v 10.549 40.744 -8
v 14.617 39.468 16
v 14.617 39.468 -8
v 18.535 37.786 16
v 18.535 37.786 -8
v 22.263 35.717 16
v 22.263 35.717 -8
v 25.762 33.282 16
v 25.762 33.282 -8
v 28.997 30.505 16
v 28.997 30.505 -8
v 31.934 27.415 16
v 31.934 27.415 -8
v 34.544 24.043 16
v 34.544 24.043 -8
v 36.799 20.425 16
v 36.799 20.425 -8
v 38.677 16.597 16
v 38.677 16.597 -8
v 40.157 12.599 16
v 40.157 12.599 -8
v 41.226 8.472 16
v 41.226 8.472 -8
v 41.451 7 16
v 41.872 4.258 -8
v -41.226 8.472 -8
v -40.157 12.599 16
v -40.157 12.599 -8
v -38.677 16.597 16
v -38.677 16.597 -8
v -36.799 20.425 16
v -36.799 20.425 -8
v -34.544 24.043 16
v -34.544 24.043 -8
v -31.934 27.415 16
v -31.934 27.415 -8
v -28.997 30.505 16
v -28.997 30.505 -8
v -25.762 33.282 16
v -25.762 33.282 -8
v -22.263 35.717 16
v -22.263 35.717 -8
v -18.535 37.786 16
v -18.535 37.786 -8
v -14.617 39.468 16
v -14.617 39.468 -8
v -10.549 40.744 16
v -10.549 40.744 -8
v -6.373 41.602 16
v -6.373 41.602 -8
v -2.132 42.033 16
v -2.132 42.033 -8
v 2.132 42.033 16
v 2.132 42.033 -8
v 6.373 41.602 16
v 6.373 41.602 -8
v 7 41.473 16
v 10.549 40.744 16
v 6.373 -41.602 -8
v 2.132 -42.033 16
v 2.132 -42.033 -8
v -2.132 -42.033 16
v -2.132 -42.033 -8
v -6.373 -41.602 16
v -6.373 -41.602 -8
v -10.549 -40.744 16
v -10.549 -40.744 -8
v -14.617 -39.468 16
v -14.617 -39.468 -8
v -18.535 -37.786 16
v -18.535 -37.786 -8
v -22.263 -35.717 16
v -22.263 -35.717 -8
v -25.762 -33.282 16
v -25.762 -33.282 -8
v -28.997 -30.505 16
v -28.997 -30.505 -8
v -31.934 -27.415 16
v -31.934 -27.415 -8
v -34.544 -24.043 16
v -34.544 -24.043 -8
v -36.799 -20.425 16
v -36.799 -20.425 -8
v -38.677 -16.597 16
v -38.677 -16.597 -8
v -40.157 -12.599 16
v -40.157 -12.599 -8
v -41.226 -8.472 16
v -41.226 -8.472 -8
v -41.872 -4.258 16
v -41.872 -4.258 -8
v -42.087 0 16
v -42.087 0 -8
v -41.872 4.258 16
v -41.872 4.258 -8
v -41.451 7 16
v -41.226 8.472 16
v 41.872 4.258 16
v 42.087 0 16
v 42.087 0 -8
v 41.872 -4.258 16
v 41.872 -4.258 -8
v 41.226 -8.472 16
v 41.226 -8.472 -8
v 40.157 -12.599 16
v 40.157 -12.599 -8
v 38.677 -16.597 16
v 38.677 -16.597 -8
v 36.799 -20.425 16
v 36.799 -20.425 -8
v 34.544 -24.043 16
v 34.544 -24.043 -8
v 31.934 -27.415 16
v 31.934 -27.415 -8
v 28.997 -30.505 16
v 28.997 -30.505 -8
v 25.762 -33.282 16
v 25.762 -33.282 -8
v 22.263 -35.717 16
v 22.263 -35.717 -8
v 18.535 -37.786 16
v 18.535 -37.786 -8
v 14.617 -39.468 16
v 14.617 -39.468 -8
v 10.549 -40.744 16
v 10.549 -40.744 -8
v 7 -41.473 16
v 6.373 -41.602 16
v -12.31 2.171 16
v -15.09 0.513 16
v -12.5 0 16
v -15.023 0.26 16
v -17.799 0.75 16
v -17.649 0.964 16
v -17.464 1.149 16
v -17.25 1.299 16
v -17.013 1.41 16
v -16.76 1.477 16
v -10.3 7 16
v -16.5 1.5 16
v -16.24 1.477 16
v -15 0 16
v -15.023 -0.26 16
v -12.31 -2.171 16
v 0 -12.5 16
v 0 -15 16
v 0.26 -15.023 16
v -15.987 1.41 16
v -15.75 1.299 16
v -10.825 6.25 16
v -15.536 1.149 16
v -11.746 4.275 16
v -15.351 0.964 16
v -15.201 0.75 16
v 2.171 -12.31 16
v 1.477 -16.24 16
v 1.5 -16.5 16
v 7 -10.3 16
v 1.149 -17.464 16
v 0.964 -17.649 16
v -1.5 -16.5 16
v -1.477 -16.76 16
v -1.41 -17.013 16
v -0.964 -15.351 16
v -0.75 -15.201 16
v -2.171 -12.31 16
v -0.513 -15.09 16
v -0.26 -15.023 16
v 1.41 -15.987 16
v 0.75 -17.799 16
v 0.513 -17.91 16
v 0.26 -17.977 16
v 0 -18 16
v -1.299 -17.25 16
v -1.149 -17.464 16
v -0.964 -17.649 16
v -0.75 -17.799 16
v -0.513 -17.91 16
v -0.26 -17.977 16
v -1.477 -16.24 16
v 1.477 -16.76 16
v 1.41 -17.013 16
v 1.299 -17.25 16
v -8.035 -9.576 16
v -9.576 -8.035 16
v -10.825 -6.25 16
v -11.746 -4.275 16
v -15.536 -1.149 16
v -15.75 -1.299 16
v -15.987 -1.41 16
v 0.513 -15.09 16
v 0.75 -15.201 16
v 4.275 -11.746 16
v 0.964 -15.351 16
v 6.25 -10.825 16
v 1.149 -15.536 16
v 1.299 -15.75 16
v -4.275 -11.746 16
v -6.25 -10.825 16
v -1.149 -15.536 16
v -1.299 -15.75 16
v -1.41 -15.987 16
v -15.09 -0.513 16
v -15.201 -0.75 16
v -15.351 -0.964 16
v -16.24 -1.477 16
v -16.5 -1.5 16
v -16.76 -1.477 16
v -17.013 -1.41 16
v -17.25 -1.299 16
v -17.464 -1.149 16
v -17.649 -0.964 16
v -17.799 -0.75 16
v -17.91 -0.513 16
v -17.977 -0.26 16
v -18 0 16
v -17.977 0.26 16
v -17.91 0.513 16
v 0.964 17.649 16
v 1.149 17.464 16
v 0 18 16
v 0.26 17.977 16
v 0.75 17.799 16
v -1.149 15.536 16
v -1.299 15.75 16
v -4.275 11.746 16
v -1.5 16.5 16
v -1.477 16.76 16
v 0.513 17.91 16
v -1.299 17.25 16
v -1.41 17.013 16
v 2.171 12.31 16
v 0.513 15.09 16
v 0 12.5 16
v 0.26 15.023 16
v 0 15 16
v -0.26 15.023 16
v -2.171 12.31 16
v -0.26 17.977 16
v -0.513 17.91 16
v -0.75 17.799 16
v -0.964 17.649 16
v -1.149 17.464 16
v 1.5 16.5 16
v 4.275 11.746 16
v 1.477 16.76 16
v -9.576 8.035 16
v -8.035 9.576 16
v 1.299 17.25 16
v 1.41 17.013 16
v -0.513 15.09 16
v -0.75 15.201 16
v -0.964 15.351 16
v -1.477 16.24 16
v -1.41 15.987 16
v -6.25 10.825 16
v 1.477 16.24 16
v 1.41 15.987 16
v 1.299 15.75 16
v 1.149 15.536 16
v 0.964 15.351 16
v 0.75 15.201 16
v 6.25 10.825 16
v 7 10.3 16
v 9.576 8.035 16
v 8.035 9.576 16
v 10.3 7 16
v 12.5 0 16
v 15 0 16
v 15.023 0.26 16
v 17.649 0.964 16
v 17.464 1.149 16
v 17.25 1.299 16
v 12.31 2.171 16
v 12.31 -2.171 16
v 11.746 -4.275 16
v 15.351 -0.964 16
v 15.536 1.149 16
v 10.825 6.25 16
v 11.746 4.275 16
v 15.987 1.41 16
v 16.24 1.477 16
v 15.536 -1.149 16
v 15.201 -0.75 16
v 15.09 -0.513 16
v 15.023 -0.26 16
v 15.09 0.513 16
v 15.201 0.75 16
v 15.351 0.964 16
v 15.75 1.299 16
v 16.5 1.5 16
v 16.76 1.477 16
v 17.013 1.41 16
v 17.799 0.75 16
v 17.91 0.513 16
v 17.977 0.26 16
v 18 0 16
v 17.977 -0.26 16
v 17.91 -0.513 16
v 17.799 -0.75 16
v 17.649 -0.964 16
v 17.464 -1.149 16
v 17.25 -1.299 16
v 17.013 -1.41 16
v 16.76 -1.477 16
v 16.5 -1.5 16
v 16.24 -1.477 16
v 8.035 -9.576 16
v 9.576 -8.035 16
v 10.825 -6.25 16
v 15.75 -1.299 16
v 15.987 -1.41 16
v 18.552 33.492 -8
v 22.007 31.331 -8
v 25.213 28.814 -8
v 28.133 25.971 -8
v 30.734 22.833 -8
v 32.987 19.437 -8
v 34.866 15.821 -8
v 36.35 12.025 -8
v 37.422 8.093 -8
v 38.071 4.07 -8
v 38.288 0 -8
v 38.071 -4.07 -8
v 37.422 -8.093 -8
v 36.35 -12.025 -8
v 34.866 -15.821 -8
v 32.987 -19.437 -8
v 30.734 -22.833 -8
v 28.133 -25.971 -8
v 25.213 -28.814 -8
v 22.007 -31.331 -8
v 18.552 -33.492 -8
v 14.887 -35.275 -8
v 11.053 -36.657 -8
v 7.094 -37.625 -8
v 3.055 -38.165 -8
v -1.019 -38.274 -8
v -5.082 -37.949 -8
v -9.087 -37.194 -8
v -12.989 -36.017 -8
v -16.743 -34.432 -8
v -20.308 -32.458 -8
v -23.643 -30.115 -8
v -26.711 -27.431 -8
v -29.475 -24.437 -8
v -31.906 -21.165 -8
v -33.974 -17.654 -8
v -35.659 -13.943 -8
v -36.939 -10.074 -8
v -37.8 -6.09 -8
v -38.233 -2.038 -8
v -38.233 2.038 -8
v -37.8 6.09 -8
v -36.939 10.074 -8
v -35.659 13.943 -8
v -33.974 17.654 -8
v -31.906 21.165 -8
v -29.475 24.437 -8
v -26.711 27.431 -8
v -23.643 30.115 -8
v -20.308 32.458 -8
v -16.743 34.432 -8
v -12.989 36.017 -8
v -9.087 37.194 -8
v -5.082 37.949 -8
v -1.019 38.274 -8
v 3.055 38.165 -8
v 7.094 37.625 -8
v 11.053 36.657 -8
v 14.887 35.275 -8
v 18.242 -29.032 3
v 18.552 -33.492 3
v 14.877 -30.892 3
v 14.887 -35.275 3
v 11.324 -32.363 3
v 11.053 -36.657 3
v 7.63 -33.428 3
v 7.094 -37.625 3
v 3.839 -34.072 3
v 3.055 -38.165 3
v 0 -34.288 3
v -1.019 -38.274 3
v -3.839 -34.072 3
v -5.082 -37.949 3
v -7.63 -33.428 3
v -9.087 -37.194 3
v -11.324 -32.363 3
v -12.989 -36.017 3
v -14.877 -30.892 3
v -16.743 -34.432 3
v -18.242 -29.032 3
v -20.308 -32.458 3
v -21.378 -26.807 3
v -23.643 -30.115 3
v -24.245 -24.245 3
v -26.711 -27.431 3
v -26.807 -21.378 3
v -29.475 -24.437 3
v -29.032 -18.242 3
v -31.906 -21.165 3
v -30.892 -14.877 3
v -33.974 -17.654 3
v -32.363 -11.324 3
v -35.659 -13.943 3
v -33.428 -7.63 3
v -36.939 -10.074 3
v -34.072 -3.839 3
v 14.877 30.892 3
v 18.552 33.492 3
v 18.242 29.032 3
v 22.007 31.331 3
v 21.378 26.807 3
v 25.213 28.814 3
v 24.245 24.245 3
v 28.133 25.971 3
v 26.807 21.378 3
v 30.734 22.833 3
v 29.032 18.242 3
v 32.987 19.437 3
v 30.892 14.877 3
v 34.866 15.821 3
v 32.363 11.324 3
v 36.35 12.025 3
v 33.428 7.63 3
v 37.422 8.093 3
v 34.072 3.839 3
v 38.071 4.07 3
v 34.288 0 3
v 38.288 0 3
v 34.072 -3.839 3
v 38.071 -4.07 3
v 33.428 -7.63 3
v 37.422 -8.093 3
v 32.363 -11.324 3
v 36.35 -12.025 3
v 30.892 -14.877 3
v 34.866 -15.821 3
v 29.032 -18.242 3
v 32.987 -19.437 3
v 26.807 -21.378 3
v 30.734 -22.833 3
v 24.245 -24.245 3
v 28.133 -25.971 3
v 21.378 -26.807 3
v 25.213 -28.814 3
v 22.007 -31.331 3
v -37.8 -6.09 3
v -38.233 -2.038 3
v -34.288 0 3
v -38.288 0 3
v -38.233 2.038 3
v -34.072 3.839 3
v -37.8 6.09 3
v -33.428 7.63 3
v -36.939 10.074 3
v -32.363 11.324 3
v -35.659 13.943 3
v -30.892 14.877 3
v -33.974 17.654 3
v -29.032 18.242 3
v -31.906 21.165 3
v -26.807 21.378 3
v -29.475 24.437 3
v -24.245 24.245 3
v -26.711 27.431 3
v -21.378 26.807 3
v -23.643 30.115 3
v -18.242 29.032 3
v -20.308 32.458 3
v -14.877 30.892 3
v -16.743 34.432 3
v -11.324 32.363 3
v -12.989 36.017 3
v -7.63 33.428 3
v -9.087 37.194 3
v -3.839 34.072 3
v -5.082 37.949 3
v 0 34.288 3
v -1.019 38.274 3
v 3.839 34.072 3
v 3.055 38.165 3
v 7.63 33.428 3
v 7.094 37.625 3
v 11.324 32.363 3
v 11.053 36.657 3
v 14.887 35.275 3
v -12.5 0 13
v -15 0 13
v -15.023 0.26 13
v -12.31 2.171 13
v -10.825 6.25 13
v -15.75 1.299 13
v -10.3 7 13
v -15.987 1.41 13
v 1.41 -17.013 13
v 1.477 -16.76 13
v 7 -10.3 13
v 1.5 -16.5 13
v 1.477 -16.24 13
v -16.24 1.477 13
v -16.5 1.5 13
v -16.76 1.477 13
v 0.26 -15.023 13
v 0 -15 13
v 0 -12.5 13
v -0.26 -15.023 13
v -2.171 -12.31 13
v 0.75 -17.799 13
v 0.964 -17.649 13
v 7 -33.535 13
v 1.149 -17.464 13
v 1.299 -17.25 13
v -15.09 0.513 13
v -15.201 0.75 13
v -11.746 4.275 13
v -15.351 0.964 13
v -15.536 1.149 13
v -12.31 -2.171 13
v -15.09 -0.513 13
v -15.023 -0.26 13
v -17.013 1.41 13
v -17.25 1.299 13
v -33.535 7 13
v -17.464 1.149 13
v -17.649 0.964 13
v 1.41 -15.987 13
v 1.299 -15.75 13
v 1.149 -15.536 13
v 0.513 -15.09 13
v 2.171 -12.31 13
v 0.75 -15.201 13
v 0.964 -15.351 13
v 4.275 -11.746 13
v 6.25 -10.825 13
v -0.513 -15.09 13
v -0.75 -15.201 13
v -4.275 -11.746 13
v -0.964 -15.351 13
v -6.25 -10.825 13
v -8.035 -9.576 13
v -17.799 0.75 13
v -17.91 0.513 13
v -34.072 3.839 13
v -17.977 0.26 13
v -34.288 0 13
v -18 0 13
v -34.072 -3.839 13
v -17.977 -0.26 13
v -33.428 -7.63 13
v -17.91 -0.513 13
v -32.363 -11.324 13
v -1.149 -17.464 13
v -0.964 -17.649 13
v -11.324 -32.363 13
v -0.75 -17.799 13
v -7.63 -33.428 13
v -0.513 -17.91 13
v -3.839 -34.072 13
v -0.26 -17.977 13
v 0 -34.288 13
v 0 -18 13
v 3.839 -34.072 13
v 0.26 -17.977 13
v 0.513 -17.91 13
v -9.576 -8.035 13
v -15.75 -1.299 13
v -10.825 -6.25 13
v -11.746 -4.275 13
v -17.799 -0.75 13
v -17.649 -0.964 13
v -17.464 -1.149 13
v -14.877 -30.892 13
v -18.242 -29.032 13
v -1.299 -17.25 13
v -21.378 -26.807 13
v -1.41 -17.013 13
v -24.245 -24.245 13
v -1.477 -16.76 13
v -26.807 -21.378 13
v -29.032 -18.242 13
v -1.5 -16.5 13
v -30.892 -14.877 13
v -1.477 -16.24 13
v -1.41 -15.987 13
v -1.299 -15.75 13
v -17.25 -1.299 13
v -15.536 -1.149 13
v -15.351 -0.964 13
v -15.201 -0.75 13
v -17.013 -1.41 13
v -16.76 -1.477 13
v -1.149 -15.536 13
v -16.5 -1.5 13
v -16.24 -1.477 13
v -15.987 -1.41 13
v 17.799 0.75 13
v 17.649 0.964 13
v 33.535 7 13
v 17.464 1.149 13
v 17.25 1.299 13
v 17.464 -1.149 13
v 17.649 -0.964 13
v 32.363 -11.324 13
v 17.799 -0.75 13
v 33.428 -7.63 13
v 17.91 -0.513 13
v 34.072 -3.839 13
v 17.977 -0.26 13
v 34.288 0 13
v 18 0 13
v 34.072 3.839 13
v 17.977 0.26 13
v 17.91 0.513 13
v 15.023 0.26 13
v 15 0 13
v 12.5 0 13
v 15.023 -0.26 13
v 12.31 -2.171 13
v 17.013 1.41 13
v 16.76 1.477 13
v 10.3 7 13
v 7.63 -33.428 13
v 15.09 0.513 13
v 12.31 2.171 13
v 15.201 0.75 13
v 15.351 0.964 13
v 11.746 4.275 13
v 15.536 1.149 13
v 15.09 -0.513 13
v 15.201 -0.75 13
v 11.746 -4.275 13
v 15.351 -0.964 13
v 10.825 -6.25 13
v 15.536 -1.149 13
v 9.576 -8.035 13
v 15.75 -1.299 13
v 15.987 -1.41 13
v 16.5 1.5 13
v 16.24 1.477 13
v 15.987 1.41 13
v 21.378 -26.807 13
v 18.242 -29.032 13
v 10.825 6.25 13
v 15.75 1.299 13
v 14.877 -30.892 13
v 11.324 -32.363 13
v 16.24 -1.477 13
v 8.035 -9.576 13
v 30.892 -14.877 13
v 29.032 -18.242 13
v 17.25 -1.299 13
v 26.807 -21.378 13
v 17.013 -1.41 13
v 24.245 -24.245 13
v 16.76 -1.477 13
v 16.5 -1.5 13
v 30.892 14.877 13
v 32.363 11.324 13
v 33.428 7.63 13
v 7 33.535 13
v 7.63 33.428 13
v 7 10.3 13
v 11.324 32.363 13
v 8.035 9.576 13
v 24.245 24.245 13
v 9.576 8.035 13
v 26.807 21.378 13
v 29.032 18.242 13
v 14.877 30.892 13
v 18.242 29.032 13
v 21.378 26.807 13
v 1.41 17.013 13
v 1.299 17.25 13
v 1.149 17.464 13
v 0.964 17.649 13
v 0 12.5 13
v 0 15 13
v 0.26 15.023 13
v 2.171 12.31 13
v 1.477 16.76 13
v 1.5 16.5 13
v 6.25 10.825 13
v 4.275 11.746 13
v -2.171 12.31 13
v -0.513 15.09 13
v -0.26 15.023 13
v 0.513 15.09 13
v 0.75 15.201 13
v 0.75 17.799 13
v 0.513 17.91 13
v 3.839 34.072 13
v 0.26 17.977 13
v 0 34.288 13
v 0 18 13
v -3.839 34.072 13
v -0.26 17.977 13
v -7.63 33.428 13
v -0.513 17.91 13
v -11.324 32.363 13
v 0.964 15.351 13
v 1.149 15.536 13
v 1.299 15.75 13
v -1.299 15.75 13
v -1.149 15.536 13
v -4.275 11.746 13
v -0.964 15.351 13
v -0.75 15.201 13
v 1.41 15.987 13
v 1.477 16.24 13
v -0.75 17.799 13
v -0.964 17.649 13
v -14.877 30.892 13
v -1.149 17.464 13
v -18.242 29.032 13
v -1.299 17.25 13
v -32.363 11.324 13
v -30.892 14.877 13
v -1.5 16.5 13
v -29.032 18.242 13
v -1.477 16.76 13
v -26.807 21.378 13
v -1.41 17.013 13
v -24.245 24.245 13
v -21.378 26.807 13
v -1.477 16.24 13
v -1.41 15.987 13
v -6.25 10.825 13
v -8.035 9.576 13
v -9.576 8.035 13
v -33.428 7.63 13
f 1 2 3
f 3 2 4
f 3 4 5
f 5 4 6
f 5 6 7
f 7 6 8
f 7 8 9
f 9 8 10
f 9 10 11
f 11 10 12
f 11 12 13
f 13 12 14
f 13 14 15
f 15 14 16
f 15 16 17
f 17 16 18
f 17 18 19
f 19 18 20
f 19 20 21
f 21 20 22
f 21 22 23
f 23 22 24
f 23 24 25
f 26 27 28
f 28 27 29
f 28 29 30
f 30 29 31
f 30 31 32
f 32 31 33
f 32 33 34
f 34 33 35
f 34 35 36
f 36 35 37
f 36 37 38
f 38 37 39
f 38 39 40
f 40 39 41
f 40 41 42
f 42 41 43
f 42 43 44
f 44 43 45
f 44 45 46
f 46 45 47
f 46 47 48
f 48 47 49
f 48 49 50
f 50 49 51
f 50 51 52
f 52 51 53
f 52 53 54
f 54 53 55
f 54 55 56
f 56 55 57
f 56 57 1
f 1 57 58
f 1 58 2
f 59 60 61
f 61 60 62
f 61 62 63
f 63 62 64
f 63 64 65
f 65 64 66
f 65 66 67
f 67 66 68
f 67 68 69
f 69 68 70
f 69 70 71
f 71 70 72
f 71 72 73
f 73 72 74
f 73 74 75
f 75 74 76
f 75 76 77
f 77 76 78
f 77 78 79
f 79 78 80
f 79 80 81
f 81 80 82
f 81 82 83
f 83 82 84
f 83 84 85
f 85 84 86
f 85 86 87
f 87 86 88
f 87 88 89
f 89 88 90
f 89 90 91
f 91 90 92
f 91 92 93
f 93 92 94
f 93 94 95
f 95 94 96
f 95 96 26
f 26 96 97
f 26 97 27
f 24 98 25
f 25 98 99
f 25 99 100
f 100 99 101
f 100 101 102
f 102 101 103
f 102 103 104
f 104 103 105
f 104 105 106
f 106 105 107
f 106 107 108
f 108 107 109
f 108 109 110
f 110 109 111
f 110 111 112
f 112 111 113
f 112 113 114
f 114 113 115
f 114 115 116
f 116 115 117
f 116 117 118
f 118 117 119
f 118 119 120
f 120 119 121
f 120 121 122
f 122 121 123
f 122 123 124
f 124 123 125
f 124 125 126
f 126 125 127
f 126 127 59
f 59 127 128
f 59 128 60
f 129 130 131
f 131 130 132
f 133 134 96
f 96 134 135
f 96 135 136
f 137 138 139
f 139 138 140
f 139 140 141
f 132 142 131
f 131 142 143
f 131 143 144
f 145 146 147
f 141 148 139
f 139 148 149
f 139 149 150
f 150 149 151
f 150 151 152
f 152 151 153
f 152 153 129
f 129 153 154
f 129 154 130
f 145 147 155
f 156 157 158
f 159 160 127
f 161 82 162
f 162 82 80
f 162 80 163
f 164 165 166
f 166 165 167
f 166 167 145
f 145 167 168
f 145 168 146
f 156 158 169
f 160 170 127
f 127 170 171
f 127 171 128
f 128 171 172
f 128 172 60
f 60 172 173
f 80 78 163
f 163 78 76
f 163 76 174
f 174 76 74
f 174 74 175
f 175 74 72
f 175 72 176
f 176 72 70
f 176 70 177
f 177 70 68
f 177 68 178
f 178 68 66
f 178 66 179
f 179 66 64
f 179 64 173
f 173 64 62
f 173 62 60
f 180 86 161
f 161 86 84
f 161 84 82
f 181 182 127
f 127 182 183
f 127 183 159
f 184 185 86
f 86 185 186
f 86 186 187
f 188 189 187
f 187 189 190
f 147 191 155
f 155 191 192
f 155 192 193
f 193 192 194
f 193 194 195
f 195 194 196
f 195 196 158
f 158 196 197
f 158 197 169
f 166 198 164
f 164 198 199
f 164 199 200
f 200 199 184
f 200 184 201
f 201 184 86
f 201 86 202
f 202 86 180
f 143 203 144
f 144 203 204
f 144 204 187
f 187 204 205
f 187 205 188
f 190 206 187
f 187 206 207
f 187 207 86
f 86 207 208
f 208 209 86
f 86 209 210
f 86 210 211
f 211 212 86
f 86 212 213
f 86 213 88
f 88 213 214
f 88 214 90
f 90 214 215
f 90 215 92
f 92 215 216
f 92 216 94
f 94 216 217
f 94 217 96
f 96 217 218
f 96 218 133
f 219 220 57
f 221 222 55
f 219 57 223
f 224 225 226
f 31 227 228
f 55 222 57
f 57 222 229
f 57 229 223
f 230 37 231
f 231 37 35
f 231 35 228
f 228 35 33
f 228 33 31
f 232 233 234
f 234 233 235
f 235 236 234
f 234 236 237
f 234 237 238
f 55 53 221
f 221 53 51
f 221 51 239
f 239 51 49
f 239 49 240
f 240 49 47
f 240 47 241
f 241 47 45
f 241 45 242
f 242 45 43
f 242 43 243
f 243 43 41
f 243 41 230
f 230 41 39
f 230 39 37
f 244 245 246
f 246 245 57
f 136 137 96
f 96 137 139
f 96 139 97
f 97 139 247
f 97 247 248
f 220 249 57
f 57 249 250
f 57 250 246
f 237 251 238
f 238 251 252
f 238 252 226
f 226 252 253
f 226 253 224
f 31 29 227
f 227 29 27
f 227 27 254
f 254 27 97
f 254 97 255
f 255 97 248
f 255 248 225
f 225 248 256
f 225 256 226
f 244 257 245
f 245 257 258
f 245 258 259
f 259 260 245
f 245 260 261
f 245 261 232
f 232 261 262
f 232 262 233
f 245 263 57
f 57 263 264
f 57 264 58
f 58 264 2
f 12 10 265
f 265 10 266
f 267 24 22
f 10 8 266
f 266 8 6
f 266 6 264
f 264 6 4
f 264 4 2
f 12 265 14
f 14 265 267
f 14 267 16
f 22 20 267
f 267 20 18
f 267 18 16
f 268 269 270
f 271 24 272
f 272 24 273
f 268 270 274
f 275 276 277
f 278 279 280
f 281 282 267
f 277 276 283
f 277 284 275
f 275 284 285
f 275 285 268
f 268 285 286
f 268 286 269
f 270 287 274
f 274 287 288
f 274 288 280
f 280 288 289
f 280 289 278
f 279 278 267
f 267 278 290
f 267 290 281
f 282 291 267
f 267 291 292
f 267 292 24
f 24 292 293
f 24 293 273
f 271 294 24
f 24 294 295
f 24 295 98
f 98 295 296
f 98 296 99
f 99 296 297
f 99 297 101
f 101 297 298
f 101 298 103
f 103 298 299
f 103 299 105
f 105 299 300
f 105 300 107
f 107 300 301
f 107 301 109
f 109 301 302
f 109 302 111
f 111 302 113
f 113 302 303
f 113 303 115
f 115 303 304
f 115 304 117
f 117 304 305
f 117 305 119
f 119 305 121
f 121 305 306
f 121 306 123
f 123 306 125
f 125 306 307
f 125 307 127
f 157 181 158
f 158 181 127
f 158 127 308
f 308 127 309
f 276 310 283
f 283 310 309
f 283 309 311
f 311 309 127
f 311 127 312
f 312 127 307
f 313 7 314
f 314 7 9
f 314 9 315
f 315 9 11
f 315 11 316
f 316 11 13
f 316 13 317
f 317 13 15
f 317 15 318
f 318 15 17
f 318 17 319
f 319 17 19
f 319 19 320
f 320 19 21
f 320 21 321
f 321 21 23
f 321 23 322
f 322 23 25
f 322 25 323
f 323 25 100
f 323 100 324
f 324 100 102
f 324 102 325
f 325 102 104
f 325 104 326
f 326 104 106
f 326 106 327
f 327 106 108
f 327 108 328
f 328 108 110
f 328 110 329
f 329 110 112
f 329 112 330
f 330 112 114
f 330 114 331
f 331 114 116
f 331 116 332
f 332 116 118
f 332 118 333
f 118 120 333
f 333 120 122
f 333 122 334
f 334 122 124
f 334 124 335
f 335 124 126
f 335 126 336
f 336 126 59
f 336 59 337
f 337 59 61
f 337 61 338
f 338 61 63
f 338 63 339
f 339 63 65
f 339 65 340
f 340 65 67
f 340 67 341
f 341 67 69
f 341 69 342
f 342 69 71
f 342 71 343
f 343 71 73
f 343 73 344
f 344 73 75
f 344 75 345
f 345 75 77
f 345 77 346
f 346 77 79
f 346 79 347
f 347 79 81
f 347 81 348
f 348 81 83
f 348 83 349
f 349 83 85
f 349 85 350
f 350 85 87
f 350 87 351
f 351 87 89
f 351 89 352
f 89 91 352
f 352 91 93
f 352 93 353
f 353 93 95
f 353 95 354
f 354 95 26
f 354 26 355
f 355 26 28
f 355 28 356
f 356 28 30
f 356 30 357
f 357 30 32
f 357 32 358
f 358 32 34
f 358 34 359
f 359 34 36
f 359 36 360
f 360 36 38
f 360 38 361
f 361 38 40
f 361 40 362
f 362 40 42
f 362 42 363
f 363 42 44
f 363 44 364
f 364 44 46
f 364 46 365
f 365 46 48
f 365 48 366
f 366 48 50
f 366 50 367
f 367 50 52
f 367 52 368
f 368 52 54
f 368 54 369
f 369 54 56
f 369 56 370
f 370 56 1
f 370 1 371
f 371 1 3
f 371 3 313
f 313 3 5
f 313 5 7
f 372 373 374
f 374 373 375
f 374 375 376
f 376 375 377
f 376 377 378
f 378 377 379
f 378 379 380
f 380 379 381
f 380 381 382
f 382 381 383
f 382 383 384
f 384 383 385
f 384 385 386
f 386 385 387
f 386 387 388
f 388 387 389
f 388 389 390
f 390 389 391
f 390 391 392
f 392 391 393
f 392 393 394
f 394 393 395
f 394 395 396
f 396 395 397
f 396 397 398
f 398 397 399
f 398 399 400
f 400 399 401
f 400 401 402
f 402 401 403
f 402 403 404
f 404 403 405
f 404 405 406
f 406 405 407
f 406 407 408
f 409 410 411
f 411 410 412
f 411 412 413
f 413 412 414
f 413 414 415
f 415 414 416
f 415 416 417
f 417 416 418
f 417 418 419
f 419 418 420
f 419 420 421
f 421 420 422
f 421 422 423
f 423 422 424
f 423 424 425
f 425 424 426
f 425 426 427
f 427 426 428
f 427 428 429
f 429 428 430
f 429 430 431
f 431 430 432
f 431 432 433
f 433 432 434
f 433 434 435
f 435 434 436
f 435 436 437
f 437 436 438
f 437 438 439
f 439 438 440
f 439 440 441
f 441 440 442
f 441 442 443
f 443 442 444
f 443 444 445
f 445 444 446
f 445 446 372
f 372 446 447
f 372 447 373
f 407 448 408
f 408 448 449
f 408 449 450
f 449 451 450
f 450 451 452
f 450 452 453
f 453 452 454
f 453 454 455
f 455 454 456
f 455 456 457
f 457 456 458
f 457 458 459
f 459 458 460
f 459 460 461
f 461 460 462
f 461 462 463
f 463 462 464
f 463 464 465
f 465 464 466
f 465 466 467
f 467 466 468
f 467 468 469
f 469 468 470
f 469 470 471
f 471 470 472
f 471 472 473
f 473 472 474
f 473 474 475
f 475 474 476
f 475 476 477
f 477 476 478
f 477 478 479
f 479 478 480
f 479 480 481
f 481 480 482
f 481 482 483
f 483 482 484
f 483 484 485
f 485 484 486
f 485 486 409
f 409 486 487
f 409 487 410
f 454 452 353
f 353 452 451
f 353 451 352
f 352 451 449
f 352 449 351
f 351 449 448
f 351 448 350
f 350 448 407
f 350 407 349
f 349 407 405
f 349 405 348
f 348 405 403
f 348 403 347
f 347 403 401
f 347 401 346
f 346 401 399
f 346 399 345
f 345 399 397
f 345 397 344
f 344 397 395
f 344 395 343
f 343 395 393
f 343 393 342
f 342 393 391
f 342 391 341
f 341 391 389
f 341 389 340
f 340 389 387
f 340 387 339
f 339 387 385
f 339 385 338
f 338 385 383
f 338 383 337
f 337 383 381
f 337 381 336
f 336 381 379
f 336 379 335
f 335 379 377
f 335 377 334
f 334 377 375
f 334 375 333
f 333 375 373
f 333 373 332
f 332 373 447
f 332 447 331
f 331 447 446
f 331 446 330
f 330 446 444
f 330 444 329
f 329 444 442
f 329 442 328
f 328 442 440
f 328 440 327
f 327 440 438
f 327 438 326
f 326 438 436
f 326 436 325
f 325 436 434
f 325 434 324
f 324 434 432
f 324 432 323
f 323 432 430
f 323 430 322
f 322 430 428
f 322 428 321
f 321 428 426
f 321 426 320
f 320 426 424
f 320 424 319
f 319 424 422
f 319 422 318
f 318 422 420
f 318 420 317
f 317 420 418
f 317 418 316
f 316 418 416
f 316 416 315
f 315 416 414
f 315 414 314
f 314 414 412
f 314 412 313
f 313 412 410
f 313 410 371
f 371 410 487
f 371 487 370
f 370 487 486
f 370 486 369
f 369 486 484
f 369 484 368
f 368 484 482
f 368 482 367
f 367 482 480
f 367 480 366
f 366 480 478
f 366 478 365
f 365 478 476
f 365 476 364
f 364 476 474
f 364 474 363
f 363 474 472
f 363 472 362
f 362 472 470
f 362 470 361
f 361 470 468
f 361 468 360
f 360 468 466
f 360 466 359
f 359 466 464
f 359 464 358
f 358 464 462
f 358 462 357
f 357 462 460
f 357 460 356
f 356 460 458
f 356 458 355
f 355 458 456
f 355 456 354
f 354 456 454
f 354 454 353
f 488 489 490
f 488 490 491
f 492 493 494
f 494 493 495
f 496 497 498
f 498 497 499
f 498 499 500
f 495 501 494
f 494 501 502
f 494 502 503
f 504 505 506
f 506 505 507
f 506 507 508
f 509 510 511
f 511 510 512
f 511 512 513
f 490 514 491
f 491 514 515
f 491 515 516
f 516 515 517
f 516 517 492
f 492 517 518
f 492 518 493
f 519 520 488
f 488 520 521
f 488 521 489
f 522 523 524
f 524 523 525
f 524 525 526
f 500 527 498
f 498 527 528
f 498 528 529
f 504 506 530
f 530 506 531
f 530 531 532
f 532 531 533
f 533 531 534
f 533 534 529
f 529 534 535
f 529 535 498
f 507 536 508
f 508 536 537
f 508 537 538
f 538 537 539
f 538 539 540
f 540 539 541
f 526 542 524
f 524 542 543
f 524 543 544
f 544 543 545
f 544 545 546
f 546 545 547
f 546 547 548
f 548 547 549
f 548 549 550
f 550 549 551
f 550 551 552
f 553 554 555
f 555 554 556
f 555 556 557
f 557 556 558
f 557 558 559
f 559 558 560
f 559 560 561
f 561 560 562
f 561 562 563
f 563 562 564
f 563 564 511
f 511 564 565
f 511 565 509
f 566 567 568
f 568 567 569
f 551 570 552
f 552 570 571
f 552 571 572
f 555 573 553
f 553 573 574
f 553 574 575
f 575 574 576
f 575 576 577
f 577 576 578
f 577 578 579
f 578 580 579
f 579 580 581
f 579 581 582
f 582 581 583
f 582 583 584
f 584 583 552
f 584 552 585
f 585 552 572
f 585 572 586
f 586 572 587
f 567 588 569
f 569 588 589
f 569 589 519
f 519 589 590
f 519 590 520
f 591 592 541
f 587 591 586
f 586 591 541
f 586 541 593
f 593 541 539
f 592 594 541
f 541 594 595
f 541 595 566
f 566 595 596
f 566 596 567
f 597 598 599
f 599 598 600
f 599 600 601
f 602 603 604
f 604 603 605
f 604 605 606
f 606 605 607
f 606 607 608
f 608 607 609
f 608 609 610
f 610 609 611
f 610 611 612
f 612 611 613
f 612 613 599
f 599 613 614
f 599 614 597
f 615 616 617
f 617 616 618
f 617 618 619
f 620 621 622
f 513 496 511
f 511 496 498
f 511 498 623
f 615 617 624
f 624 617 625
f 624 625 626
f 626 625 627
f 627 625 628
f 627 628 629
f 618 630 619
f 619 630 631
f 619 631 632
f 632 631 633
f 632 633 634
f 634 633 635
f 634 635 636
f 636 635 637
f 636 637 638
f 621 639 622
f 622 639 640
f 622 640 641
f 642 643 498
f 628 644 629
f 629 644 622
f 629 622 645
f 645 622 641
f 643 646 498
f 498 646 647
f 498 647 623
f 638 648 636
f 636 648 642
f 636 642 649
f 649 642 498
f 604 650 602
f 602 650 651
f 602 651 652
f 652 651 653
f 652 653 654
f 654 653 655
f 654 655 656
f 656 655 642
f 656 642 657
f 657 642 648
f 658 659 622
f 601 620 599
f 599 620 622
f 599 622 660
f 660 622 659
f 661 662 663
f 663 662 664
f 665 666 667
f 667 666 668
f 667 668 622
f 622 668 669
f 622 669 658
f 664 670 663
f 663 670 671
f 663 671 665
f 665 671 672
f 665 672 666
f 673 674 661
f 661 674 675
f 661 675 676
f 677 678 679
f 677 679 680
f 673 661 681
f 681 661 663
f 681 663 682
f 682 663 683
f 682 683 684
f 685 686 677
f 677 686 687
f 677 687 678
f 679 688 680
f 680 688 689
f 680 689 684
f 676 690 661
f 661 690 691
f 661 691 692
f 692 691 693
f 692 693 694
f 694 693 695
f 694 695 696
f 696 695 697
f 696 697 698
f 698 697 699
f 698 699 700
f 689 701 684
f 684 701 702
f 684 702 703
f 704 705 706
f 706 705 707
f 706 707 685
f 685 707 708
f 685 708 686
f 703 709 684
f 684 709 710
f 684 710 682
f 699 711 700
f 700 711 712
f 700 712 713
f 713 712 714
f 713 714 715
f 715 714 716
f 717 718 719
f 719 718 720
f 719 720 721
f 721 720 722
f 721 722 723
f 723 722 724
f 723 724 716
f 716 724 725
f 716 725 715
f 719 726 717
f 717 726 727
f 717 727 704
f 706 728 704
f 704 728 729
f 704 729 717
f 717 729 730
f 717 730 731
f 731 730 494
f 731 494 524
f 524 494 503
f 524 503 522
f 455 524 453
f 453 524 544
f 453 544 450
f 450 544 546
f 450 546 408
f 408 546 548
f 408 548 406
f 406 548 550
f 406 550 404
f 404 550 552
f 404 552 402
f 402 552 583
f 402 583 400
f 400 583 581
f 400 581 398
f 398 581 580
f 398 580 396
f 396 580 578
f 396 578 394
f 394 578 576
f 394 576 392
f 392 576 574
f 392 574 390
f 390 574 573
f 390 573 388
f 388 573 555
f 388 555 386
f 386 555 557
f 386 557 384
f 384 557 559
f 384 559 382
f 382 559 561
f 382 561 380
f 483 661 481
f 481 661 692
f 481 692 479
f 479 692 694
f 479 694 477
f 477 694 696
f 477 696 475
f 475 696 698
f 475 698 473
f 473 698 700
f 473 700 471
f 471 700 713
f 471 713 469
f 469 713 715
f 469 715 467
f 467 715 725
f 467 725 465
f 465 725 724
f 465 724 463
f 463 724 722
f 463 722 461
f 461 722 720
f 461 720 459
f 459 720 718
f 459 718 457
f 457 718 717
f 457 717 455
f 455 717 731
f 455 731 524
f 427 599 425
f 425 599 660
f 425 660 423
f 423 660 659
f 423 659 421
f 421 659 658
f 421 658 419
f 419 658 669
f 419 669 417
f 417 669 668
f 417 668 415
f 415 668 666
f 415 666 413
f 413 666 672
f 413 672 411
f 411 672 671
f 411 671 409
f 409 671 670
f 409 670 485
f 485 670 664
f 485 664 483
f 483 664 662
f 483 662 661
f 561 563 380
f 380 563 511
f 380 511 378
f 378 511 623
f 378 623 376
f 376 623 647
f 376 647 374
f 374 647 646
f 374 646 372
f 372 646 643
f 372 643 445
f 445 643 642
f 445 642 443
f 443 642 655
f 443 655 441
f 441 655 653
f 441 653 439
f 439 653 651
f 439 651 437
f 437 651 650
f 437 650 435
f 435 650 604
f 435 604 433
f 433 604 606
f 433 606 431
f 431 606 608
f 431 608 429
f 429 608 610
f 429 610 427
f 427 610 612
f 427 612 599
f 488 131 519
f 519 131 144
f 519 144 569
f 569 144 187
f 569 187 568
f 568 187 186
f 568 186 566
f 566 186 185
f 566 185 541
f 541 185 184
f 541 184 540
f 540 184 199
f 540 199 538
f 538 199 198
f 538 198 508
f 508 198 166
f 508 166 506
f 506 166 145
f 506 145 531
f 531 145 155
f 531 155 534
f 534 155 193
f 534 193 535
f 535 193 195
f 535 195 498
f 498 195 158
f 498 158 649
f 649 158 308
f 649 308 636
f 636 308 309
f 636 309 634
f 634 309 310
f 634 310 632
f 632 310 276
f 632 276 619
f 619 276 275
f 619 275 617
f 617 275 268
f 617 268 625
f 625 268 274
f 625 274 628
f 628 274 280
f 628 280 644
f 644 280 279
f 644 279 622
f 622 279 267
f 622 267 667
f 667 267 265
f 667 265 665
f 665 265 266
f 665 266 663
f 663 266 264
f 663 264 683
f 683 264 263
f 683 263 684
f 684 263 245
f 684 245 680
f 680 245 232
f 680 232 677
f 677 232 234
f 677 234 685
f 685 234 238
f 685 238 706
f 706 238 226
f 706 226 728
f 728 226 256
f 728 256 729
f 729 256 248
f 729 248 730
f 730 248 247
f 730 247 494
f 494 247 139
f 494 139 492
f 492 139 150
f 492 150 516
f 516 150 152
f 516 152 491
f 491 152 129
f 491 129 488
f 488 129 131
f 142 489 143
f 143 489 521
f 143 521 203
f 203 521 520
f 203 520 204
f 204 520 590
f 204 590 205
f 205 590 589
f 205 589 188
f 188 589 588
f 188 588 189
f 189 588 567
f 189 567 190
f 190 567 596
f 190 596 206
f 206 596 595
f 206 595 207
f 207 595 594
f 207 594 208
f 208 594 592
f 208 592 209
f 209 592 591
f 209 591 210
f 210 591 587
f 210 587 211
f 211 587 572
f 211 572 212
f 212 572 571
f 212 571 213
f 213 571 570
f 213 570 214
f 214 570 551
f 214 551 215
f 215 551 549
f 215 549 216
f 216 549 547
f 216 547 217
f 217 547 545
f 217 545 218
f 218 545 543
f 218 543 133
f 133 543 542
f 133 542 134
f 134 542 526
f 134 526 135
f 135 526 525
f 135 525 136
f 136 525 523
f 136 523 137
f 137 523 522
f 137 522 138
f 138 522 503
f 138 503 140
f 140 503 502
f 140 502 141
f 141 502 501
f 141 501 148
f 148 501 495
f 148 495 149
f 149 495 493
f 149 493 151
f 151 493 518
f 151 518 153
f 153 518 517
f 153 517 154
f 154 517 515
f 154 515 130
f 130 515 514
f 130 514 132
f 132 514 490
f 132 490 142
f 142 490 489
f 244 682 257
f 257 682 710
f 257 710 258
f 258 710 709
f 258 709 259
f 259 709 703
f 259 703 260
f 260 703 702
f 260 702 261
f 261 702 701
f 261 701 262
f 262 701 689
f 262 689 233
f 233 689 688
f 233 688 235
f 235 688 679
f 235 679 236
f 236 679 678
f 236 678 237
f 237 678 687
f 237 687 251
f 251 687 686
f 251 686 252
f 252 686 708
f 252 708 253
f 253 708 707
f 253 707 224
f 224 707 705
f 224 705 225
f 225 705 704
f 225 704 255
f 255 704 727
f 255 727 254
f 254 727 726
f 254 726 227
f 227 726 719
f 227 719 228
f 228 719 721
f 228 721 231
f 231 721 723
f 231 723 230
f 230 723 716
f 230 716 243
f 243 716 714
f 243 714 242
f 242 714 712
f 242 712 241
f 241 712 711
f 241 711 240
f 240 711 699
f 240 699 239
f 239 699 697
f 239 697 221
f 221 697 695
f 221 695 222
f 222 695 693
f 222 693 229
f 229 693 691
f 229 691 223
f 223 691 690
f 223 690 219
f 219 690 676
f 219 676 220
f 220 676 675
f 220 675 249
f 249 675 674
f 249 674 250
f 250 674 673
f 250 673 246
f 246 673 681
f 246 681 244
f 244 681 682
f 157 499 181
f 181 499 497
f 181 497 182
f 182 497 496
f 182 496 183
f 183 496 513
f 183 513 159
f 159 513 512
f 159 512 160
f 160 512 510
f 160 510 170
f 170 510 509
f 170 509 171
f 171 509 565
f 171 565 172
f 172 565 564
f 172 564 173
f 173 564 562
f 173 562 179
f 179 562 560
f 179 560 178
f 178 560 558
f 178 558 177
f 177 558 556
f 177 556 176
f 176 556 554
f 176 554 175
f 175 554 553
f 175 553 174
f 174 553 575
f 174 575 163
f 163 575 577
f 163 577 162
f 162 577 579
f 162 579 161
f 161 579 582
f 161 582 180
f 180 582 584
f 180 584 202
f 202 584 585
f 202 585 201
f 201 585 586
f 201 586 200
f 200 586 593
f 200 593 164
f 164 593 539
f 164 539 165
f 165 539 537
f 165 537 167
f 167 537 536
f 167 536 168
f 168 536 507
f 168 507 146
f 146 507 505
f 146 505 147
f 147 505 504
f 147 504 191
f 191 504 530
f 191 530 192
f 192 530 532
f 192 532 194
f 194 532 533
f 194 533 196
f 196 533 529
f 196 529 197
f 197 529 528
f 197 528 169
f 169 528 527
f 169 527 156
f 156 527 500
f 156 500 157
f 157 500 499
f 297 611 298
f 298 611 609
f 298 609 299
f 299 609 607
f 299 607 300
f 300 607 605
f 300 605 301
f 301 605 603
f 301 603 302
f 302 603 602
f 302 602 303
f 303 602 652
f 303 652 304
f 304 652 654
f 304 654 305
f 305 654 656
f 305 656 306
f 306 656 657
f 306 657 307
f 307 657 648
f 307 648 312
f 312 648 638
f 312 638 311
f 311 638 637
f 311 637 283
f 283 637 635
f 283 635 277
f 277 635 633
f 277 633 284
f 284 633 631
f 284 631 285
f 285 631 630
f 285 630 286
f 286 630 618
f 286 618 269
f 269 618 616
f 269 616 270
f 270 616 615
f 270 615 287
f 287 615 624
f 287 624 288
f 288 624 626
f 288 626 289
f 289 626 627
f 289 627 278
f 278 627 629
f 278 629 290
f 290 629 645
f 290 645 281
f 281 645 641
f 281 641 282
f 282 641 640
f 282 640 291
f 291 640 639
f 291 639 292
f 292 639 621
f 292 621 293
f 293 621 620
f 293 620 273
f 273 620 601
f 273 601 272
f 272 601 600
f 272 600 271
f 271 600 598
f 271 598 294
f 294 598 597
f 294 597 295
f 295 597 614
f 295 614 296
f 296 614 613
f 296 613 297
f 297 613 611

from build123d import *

# Parameters (mm, degrees)
SKETCH1_R               = 42.0875
BOSS_EXTRUDE1_DEPTH     = 24
SKETCH2_R               = 38.2875
CUT_EXTRUDE1_DEPTH      = 11
SKETCH3_R               = 34.2875
CUT_EXTRUDE2_DEPTH      = 10
SKETCH5_R               = 12.5
CUT_EXTRUDE4_DEPTH      = 1
CUT_EXTRUDE4_DEPTH_BACK = 25
CUT_EXTRUDE3_START      = -4
SKETCH4_R               = 1.5
CUT_EXTRUDE3_DEPTH      = 26
CIRPATTERN1_COUNT       = 4


with BuildPart() as part:
    # Sketch1 → Boss-Extrude1 (new body)
    with BuildSketch(Plane.XY.offset(-8)):
        Circle(SKETCH1_R)
    extrude(amount=BOSS_EXTRUDE1_DEPTH)

    # Sketch2 → Cut-Extrude1 (cut)
    with BuildSketch(Plane(origin=(0, 0, -8), x_dir=(-1, 0, 0), z_dir=(0, 0, -1))):
        Circle(SKETCH2_R)
    extrude(amount=-CUT_EXTRUDE1_DEPTH, mode=Mode.SUBTRACT)

    # Sketch3 → Cut-Extrude2 (cut)
    with BuildSketch(Plane(origin=(0, 0, 3), x_dir=(-1, 0, 0), z_dir=(0, 0, -1))):
        Circle(SKETCH3_R)
    extrude(amount=-CUT_EXTRUDE2_DEPTH, mode=Mode.SUBTRACT)

    # Sketch5 → Cut-Extrude4 (cut, two sides)
    with BuildSketch(Plane.XY.offset(16)) as cut_extrude4_sk:
        Circle(SKETCH5_R)
    extrude(amount=CUT_EXTRUDE4_DEPTH, mode=Mode.SUBTRACT)
    extrude(cut_extrude4_sk.sketch, amount=-CUT_EXTRUDE4_DEPTH_BACK, mode=Mode.SUBTRACT)

    # Sketch4 → Cut-Extrude3 (cut)
    with BuildSketch(Plane(origin=(0, 0, 13), x_dir=(-1, 0, 0), z_dir=(0, 0, -1)).offset(CUT_EXTRUDE3_START)):
        with Locations((-16.5, 0)):
            Circle(SKETCH4_R)
    cut_extrude3 = extrude(amount=CUT_EXTRUDE3_DEPTH, mode=Mode.SUBTRACT)

    # CirPattern1: Cut-Extrude3 ×4 about axis
    cirpattern1_axis = Axis((0, 0, 0), (0, 0, 1))
    for i in range(1, CIRPATTERN1_COUNT):
        add(cut_extrude3.rotate(cirpattern1_axis, i * 360 / CIRPATTERN1_COUNT), mode=Mode.SUBTRACT)


solid = part.part
